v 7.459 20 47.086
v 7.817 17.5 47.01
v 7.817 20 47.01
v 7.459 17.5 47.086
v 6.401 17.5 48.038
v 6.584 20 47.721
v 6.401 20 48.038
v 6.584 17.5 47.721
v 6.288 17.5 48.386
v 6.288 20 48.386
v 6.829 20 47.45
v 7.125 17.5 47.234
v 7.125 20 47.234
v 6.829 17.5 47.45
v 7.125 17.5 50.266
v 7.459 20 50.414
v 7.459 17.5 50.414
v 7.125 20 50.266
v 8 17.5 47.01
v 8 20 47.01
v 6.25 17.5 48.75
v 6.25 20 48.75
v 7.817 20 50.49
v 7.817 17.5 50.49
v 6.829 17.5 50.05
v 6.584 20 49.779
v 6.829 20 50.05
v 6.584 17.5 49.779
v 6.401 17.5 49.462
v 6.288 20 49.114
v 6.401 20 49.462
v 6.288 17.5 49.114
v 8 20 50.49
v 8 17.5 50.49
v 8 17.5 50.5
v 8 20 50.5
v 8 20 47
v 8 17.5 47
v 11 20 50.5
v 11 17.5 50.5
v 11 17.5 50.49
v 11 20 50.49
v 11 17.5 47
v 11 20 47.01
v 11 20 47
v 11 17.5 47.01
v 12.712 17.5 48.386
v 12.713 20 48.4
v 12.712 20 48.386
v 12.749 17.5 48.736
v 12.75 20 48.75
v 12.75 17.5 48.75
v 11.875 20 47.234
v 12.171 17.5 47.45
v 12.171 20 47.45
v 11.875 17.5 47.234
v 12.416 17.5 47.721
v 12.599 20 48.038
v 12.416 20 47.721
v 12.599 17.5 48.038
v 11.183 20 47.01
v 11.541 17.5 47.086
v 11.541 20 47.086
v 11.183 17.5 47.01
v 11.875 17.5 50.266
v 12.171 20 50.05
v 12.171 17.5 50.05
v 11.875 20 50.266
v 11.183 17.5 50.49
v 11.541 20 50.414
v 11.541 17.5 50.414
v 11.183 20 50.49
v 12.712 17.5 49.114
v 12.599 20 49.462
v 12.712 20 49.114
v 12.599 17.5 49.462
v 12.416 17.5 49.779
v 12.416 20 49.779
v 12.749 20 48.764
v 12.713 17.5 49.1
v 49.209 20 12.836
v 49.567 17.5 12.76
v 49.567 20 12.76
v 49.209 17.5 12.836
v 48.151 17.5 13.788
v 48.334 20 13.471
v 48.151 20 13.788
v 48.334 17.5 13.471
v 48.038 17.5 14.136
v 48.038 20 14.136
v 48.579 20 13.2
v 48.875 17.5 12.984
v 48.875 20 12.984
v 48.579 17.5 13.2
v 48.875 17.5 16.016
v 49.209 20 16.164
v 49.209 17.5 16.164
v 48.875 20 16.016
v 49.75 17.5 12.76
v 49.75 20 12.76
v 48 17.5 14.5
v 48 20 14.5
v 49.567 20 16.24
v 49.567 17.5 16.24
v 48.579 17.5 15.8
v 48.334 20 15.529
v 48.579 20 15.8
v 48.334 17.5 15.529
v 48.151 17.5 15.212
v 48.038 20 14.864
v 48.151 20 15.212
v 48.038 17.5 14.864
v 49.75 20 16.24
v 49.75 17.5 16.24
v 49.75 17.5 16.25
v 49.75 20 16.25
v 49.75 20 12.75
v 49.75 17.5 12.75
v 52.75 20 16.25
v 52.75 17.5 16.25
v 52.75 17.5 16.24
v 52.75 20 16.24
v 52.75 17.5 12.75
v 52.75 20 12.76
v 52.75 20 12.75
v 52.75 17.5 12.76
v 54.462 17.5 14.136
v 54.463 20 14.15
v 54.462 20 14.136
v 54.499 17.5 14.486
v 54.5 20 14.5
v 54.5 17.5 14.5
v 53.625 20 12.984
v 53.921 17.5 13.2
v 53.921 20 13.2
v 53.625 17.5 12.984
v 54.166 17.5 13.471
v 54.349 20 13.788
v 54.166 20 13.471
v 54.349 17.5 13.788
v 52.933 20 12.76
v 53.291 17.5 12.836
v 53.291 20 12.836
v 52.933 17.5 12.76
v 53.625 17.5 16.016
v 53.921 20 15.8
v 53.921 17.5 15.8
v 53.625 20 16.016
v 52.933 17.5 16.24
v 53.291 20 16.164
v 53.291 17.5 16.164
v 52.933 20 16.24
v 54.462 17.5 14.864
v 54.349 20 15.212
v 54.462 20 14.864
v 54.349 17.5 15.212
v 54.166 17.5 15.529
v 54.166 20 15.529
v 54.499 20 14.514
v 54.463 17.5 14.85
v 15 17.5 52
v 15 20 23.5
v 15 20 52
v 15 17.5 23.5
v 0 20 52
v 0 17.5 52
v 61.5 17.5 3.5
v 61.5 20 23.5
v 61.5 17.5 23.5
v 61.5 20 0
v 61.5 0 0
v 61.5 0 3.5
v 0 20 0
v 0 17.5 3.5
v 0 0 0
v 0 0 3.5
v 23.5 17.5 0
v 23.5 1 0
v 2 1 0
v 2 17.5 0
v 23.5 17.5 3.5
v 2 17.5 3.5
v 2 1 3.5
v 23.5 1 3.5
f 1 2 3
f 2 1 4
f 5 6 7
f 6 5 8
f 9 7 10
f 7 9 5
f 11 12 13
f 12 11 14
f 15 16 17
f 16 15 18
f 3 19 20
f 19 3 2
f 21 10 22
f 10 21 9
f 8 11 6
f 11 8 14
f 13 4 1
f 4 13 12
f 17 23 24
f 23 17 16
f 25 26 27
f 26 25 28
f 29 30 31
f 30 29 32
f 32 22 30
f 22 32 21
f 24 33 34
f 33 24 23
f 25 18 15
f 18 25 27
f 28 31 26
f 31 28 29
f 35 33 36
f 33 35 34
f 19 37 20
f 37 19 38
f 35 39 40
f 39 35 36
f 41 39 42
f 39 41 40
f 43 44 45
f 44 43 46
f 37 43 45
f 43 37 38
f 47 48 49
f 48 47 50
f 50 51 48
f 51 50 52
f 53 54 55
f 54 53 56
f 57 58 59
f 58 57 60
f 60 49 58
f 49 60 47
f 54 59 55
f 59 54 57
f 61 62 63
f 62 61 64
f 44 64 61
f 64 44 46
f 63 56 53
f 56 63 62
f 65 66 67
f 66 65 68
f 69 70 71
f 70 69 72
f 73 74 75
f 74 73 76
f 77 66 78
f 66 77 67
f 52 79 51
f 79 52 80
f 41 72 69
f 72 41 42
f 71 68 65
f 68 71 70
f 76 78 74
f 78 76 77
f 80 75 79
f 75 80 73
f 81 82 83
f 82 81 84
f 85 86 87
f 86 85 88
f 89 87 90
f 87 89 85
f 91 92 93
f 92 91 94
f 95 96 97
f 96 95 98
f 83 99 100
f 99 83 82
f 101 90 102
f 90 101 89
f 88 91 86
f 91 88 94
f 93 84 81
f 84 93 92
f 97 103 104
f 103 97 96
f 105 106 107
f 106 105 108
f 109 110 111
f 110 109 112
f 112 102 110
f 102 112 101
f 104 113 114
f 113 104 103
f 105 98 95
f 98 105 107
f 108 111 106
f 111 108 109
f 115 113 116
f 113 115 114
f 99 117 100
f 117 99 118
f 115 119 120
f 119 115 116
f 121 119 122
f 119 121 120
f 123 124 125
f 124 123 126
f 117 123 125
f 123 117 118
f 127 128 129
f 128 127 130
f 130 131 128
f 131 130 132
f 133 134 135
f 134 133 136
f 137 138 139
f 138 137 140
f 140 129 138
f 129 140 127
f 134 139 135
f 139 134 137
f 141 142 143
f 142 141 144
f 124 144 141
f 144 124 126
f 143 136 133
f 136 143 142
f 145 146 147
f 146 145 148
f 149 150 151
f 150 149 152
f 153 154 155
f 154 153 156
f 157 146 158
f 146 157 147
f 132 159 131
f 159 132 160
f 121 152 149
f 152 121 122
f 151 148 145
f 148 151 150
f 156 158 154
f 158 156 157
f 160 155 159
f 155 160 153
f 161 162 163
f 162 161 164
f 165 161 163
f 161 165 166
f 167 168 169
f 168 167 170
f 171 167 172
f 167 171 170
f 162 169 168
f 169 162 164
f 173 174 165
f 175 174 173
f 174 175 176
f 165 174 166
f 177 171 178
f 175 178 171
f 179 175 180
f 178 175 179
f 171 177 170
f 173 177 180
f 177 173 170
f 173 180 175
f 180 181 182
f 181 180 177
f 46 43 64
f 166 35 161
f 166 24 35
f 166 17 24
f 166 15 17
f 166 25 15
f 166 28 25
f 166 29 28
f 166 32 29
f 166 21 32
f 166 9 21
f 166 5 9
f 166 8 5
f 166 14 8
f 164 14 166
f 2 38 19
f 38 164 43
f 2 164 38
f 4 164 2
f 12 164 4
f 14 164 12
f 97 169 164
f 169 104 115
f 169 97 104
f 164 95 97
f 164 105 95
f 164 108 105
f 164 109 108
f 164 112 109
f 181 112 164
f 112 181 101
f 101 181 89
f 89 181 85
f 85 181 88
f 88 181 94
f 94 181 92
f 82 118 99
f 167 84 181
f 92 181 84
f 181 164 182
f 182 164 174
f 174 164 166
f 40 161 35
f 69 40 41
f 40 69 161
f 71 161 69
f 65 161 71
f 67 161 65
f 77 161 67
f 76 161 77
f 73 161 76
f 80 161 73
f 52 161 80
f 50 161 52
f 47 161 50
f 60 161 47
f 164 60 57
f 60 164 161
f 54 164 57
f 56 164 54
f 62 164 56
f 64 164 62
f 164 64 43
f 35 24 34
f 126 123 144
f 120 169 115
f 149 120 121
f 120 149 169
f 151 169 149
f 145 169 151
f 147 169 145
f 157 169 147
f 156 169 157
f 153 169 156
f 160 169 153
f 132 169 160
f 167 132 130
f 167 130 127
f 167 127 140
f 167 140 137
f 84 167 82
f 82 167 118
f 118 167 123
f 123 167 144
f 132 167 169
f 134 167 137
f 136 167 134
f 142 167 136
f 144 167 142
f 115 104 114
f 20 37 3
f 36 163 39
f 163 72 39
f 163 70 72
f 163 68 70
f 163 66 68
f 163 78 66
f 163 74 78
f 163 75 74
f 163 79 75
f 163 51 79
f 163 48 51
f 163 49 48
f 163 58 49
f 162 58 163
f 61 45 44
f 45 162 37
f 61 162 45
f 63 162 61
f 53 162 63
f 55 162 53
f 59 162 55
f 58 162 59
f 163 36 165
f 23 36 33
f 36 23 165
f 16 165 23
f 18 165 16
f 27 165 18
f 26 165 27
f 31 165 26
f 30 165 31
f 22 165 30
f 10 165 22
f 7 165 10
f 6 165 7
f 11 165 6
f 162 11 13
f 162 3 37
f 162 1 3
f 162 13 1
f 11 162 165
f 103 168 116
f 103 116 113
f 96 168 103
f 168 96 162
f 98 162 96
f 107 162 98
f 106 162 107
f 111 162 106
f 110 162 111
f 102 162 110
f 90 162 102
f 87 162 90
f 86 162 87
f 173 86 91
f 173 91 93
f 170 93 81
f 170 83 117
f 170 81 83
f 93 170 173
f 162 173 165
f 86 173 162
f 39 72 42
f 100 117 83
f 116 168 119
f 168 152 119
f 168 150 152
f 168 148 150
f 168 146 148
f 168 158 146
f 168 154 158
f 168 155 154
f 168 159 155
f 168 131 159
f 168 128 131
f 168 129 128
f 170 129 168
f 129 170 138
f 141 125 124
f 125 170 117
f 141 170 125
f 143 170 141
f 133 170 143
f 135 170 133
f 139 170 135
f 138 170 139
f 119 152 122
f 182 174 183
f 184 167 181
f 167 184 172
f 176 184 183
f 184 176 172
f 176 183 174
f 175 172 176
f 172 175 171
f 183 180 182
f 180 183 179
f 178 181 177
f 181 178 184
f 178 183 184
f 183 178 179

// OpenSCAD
epsilon = 0.1; // small tolerance used for CSG subtraction/addition

// 18 mm hole for the inductive sensor
// LJ18A3-8-Z/BX   
probe_extra_margin = 0.6;
probediameter = 18.0 + probe_extra_margin;
probemargin = 5; 
probe_holder_width = probediameter+2*probemargin;

$fn=30;

// screw/nut dimensions
//chttp://www.fairburyfastener.com/xdims_metric_nuts.htm
screw_margin = 0.6;
screw_dia = 4.0 + screw_margin; // M3 = 3 mm, M4 = 4 mm - orig. 3.4
nut_dia = 7.7 + screw_margin; // M3 = 6 mm, M4 = 7.7 mm - orig. 6.5
nut_height = 3.0 + screw_margin; // M3 = 2.3 mm, M4 = 3 mm - orig. 3

/**
 * Standard right-angled triangle
 * from MCAD
 * @param number o_len Lenght of the opposite side
 * @param number a_len Lenght of the adjacent side
 * @param number depth How wide/deep the triangle is in the 3rd dimension
 * @todo a better way ?
 */
module triangle(o_len, a_len, depth)
{
    linear_extrude(height=depth)
    {
        polygon(points=[[0,0],[a_len,0],[0,o_len]], paths=[[0,1,2]]);
    }
}

module rcube(size = [1, 1, 1], center = false, radius = 1.5, fn = 8) {
	
	translate = (center == true) ?
	[0, 0, 0] :
	[
	(size[0] / 2),
	(size[1] / 2),
	(size[2] / 2)
	];

	translate(v = translate){
		cube(size - [2*radius,0,0], true);
		cube(size - [0,2*radius,0], true);
        
		for (x = [radius-size[0]/2, -radius+size[0]/2],
		y = [radius-size[1]/2, -radius+size[1]/2]) {
			translate([x,y,0]) cylinder(r=radius, h=size[2], center=true, $fn=fn);
		}
	}
}

module z_probe_holder() {

    width = probe_holder_width; // original 20.3
    depth = 3.5; // 3.5
    length = probediameter+2*probemargin;
    rounded_radius = 4/2; // 4 mm diameter
    
	difference()
	{
        union() {
            translate([0,depth,0]) rotate([90,0,0]) rcube([width,length,depth],radius=rounded_radius,fn=$fn);
                       
            // large triangle support
            trianglesize = 26;
            triangledepth = 2;
            rotate([0,0,0]) translate([0,3.5,0]) triangle(trianglesize,trianglesize,triangledepth);
        }

        rotate([-90,0,0]) translate([width/2,-length/2,-epsilon]) cylinder(r=probediameter/2,h=depth+2*epsilon);
    }
}

module fan_duct_with_support() {    
    thickness = 2.5;
    length = 38;
    translate([0,probe_holder_width,0]) rotate([90,0,0]) {
        
        //fan_duct();

        union() {
       translate([0,-thickness,-length+38]) cube([18,thickness,length]);
    
        // large triangle support
        trianglesize = 12;
        triangledepth = 6.5;
        rotate([180,90,0]) translate([-38,0,-triangledepth]) triangle(trianglesize,trianglesize,triangledepth);
        }
    }
}

module main_parts() {
    hole_height = 6;
    hole_margin = 5;
    nut_margin = 3.5/2;
    difference() {
        translate([0,59.5,3]) fan_duct_with_support();
        
        // screw holes
        union() {
            // nut traps
            translate([10.5,50+hole_margin,nut_margin-epsilon]) cylinder(r=nut_dia/2, h=nut_height+epsilon, $fn=6);        

            // nut traps
            translate([10.5,50+38-hole_margin,nut_margin-epsilon]) cylinder(r=nut_dia/2, h=nut_height+epsilon, $fn=6);        

            // screw holes
            translate([10.5,50+hole_margin,-2.5-epsilon]) cylinder(r=screw_dia/2, h=hole_height+2*epsilon, $fn=20);	
                
            // screw holes
            translate([10.5,50+38-hole_margin,-2.5-epsilon]) cylinder(r=screw_dia/2, h=hole_height+2*epsilon, $fn=20);	
        }
    }
}
//color("green") translate([-posx,probe_holder_width+posz,-posy]) rotate([90,0,0]) holder();

//z_probe_holder();
//main_parts();
//translate([0,-posy-7,0]) rotate([0,180,0]) main_parts();


// flat screw is 24 mm across



back_thickness = 2.5;
back_height = 52; // 51.5;
back_width = 61.5;
back_thin_width = 15;
back_thin_height = 23.5;

bottom_thickness = 3.5;
bottom_length = 61.5;
bottom_width = 20;//20.3;

bottom_left_margin = 2;
bottom_side_margin = 1;

bottom_opening_length = 21.5;
bottom_opening_width = bottom_width-bottom_side_margin-back_thickness;//16.80


module back() {
    translate([0,bottom_width-back_thickness,0]) {
        difference() {
            cube([back_width, back_thickness, back_height]);
            
            union() {
            translate([back_thin_width,-epsilon,back_thin_height]) cube([back_width-back_thin_width, back_thickness+2*epsilon, back_height-back_thin_height]);
                
    // screw hole
    screw_dia = 3.5;
    screw_length = 6.5;
    screw_top_margin = 1.5;//1.5;
    screw_left_margin = 6.25;//6.25;
                
    translate([screw_left_margin,0,back_height-screw_top_margin]) long_cylinder(dia=screw_dia, width=screw_length, thickness = back_thickness);
         
    pos_2nd_screw = back_height - back_thin_height - 12.25;
                
    translate([back_width-screw_length-7,0,pos_2nd_screw]) long_cylinder(dia=screw_dia, width=screw_length, thickness = back_thickness);
                                
            }
        }
    }
}

module long_cylinder(dia=3.5, width=6.5, thickness=5) {

    rad = dia/2;
    
    if (width <= dia) { 
        // only one cylinder
        translate([rad,-epsilon,-rad]) rotate([-90,0,0]) cylinder(r=rad, h=thickness+2*epsilon);
        
        } else {

        // first cylinder
        translate([rad,-epsilon,-rad]) rotate([-90,0,0]) cylinder(r=rad, h=thickness+2*epsilon);
        
        // cube to cover the middle
        translate([rad,-epsilon,-2*rad]) cube([width-dia,thickness+2*epsilon,dia]);
    
        // second cylinder
        translate([rad+width-dia,-epsilon,-rad]) rotate([-90,0,0]) cylinder(r=rad, h=thickness+2*epsilon);
        }
}

module bottom() {
    translate([0,0,0]) {
        difference() {
            cube([bottom_length, bottom_width, bottom_thickness]);
            translate([bottom_left_margin,bottom_side_margin,-epsilon]) cube([bottom_opening_length,bottom_opening_width,bottom_thickness+2*epsilon]);
        }
    }
}

back();
bottom();

// wall 6.51
// 4.03
// opening 21.5


// nut openings: 1.51 right, 1.31 left
// 38 mm width from fan end to right end
